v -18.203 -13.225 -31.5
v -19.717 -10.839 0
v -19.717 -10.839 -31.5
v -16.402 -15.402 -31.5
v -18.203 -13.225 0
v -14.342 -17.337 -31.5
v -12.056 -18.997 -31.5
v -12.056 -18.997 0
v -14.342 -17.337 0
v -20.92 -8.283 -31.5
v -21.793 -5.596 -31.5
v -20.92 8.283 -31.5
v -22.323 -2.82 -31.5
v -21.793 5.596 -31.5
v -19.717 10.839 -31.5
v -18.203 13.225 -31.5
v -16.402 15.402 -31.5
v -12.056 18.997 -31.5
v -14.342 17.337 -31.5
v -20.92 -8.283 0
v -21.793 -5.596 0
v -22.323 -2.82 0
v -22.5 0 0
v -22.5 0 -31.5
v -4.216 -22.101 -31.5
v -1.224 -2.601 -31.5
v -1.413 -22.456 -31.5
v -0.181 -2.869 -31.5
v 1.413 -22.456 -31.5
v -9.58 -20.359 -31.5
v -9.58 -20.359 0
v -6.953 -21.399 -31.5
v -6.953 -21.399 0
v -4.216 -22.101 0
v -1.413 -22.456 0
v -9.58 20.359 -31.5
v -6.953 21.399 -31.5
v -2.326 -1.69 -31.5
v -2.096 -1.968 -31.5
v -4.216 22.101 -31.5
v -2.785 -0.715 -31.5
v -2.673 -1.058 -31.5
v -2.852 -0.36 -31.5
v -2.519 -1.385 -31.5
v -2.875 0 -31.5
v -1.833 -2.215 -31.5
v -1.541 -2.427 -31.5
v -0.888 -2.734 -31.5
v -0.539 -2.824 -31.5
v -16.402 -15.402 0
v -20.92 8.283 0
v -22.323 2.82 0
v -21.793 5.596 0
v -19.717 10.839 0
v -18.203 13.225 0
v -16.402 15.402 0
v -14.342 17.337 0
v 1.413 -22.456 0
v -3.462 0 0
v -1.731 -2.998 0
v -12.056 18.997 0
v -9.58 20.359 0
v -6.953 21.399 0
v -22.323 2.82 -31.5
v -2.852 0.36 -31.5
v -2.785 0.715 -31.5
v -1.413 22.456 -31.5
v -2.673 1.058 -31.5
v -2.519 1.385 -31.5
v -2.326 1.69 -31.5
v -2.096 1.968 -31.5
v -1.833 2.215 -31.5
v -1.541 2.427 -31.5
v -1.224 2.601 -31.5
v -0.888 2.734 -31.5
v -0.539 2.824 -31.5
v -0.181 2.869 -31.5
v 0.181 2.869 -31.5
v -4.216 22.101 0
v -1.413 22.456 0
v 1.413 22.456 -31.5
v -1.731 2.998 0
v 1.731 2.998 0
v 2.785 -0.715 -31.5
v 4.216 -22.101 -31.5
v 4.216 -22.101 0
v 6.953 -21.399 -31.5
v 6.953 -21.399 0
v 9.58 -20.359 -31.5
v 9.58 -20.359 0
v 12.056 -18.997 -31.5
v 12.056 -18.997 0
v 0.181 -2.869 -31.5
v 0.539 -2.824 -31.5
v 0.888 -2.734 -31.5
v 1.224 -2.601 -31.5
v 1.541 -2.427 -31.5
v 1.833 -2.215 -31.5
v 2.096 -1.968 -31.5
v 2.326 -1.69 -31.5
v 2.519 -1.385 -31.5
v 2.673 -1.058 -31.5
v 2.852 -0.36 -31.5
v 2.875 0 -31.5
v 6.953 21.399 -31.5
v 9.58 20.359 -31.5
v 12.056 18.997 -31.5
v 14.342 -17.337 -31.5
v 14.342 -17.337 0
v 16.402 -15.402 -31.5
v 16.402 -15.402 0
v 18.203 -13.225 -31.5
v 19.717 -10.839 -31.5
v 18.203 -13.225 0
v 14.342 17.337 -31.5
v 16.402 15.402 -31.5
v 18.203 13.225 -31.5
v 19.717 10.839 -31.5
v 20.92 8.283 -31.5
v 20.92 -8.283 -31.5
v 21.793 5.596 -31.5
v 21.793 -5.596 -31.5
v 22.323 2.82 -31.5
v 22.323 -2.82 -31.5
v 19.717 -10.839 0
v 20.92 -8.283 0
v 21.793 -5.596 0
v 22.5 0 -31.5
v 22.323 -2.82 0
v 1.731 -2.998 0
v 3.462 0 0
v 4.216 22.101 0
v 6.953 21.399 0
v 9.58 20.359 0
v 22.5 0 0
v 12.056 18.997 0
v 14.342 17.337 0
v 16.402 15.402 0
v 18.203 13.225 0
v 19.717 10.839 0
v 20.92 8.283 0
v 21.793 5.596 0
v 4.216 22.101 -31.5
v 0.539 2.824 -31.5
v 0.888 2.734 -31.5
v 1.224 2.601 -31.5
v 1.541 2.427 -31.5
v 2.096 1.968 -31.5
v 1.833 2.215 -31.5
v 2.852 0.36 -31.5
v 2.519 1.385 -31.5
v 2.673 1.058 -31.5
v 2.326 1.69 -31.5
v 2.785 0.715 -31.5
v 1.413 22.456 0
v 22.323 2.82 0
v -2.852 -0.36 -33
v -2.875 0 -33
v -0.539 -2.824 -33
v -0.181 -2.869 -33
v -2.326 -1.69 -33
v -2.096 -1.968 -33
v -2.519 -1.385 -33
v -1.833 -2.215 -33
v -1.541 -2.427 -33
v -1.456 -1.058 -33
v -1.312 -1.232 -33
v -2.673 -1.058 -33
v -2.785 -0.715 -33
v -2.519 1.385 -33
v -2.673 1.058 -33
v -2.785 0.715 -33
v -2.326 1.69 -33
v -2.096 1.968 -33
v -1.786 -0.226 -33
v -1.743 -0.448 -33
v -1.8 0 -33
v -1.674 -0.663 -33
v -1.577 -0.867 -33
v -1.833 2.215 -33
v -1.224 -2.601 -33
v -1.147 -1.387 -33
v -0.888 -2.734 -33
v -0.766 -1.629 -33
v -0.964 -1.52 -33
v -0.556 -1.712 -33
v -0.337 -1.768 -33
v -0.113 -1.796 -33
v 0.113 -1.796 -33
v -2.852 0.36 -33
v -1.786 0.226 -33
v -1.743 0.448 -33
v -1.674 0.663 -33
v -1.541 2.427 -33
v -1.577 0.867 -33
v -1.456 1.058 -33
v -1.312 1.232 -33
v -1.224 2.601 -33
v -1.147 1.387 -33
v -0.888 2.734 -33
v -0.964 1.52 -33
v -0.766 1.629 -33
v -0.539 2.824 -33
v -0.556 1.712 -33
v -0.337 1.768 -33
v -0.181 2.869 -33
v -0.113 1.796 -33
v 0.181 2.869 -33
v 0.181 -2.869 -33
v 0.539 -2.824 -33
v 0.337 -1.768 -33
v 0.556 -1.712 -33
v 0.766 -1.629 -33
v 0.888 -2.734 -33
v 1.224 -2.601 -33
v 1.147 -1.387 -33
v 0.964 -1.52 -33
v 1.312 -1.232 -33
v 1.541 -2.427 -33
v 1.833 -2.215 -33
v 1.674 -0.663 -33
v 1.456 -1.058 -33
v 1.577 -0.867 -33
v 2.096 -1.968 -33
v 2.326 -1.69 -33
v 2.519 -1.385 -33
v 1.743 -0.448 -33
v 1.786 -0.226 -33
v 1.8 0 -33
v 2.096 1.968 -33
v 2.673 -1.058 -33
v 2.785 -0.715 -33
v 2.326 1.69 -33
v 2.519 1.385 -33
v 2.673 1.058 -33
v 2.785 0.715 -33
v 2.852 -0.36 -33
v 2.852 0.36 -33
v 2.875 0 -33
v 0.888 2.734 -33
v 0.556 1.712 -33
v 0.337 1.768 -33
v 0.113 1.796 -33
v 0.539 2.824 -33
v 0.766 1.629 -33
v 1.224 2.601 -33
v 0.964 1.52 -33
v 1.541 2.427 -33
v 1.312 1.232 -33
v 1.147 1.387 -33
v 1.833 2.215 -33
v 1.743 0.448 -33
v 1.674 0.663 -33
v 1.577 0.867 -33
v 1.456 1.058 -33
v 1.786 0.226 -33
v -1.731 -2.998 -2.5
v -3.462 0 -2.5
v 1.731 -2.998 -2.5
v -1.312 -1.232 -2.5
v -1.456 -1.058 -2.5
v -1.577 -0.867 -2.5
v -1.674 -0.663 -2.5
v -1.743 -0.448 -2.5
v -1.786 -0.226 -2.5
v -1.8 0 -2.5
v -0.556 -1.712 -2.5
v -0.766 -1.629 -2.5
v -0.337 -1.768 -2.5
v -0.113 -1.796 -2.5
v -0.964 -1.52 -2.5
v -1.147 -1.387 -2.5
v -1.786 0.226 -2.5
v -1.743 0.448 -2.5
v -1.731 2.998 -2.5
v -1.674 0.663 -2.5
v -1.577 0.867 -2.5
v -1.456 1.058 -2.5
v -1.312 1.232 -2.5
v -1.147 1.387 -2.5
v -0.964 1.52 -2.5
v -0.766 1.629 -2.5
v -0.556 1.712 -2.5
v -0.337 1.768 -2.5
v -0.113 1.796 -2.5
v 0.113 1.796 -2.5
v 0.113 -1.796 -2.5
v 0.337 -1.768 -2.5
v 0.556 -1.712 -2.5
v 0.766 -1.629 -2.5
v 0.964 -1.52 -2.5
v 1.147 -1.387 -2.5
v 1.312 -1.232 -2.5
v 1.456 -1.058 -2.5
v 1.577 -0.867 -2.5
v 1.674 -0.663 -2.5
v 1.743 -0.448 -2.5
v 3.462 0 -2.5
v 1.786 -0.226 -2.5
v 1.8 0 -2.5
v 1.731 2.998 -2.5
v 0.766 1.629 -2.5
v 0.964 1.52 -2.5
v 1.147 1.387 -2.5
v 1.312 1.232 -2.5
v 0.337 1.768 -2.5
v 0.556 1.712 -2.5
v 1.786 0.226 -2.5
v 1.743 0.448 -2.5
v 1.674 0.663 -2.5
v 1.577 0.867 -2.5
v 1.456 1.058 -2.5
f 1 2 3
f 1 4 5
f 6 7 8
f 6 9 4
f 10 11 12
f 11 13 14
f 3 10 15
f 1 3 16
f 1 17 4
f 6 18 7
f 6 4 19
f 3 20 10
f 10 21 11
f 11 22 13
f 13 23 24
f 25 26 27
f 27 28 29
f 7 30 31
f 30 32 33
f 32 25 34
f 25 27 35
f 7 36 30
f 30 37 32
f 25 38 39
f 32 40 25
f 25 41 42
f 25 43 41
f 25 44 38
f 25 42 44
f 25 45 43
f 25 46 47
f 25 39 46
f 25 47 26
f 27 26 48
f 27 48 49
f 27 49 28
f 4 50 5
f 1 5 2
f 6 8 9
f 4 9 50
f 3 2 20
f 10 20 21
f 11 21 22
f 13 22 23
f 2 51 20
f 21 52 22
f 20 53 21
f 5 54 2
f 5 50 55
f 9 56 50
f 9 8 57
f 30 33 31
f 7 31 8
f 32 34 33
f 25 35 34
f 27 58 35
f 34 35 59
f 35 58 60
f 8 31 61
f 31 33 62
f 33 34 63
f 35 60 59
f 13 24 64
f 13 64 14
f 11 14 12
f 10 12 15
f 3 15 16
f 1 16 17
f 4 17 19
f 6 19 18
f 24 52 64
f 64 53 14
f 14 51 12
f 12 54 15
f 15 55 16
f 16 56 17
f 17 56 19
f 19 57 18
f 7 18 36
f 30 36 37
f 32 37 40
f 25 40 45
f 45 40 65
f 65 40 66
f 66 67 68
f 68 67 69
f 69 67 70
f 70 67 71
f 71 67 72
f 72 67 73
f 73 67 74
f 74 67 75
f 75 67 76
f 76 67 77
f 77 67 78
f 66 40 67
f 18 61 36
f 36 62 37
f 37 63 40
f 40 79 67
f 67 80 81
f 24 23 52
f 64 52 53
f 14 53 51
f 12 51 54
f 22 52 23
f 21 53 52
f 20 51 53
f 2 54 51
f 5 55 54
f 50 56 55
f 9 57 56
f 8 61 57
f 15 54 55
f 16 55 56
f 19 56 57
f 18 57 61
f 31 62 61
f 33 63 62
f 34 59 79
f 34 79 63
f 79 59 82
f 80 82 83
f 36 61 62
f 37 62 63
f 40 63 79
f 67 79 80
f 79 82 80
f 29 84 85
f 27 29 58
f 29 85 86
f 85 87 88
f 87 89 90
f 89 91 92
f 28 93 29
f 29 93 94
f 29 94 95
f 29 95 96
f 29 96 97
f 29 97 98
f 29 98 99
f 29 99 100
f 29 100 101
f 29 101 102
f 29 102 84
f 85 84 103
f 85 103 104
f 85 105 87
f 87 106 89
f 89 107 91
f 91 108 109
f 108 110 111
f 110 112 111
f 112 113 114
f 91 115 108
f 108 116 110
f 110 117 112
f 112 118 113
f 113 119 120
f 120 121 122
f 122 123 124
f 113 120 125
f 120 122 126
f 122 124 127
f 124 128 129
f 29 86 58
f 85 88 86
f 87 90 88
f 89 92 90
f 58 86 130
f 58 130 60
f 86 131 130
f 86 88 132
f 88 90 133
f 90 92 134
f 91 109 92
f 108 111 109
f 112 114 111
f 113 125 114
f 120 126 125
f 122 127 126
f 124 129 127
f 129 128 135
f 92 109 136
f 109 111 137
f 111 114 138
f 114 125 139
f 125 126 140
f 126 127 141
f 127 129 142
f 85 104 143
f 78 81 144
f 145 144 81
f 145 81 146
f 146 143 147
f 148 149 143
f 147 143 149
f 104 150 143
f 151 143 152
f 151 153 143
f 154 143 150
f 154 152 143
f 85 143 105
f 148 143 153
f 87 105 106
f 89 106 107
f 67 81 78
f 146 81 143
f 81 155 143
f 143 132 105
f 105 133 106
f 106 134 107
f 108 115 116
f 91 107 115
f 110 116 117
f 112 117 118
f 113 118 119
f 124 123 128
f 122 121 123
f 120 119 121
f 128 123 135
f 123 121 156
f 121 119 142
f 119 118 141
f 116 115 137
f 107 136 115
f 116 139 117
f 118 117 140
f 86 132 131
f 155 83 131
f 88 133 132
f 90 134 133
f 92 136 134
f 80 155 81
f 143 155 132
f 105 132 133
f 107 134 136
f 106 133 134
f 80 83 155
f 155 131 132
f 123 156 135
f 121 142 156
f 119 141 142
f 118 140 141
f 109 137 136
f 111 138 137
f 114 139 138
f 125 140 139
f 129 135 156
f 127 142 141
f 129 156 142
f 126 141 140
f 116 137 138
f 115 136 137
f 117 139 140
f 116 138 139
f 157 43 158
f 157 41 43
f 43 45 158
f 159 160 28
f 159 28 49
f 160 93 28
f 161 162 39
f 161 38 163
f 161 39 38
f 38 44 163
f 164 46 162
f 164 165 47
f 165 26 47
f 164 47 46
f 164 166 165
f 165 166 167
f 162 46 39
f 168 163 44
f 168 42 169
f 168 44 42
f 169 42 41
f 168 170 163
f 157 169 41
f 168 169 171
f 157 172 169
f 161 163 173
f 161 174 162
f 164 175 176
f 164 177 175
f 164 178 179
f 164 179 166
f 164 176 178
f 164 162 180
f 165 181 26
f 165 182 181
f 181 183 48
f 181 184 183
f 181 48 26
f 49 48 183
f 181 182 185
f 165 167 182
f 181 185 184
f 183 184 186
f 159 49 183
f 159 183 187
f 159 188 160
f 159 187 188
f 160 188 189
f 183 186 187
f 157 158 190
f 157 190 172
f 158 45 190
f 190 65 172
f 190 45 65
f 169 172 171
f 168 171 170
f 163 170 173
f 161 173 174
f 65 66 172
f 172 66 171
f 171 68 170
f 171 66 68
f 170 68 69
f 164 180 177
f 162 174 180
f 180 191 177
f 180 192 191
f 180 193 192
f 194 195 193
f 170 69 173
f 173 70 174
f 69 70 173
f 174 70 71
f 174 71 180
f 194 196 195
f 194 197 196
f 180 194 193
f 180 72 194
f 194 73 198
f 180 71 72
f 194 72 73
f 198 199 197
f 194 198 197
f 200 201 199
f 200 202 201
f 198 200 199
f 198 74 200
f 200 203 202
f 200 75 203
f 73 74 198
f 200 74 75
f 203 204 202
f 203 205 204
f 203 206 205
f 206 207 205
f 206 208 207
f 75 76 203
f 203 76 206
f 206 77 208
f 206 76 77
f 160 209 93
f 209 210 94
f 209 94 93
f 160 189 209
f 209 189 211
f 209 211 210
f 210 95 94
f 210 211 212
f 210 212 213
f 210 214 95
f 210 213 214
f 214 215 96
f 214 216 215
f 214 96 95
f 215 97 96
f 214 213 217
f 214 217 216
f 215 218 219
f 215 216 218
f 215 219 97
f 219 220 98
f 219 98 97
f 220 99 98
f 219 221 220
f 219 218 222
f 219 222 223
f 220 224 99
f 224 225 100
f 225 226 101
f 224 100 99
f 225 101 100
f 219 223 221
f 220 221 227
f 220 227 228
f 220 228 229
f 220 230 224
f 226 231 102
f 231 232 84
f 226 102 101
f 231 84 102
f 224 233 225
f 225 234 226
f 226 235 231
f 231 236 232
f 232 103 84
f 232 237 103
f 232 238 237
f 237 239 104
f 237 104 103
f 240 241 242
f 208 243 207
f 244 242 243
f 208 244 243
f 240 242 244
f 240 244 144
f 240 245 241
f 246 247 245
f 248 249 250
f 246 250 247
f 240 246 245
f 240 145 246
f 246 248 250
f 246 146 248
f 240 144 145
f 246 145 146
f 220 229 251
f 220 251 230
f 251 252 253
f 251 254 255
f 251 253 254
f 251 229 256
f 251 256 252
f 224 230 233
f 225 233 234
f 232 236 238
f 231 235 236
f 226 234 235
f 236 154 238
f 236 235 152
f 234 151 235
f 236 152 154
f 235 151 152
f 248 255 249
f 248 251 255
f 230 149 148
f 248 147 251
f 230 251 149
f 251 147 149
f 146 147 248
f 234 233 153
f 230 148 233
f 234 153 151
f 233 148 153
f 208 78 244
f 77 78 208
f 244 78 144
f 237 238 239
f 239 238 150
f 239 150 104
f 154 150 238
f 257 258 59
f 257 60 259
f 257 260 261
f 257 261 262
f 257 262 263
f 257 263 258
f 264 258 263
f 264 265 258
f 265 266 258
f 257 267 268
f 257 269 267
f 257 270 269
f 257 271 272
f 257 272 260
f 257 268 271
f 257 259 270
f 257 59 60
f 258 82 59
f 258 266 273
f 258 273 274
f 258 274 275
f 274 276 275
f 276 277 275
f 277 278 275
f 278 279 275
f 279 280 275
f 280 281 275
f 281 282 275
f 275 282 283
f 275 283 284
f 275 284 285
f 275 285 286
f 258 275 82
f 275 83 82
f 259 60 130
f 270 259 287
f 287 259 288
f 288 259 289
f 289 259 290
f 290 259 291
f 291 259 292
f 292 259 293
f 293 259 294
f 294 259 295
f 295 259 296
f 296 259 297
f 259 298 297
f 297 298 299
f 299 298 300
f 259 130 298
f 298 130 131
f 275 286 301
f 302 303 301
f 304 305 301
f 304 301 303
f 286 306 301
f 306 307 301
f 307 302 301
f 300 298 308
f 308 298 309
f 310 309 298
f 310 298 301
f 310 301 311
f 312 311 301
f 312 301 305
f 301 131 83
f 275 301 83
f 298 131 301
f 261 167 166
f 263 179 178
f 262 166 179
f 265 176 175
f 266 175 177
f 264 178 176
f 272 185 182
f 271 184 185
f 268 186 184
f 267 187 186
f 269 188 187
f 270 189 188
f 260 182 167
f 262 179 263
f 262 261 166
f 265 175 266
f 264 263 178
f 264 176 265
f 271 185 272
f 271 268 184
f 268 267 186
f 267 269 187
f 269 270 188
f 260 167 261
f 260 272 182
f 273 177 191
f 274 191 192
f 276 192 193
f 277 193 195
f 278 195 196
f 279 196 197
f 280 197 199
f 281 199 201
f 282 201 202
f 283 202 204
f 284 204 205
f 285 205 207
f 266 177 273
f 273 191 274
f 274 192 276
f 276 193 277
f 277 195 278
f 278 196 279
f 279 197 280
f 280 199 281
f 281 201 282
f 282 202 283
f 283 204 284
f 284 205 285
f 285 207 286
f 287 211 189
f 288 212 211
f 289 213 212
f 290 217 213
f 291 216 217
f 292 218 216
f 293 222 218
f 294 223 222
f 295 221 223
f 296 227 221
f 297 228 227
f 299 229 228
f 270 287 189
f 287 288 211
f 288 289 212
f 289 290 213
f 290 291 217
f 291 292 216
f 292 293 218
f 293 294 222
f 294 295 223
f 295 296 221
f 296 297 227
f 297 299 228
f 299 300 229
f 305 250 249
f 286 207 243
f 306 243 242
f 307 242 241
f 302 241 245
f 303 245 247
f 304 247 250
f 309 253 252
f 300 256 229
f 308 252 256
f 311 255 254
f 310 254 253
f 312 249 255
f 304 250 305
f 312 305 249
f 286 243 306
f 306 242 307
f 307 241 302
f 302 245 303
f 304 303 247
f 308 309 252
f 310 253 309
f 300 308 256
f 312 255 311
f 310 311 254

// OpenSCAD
$fn = 50;


difference() {
	union() {
		translate(v = [0, 0, -31.5000000000]) {
			cylinder(h = 31.5000000000, r = 22.5000000000);
		}
		#translate(v = [0, 0, -33.0000000000]) {
			cylinder(h = 33, r = 2.8750000000);
		}
	}
	union() {
		translate(v = [0, 0, 0]) {
			rotate(a = [0, 0, 0]) {
				difference() {
					union() {
						translate(v = [0, 0, -2.5000000000]) {
							linear_extrude(height = 2.5000000000) {
								polygon(points = [[3.4620000000, 0.0000000000], [1.7310000000, 2.9981799479], [-1.7310000000, 2.9981799479], [-3.4620000000, 0.0000000000], [-1.7310000000, -2.9981799479], [1.7310000000, -2.9981799479]]);
							}
						}
					}
					union();
				}
			}
		}
		#translate(v = [0, 0, -100.0000000000]) {
			cylinder(h = 200, r = 1.8000000000);
		}
	}
}
